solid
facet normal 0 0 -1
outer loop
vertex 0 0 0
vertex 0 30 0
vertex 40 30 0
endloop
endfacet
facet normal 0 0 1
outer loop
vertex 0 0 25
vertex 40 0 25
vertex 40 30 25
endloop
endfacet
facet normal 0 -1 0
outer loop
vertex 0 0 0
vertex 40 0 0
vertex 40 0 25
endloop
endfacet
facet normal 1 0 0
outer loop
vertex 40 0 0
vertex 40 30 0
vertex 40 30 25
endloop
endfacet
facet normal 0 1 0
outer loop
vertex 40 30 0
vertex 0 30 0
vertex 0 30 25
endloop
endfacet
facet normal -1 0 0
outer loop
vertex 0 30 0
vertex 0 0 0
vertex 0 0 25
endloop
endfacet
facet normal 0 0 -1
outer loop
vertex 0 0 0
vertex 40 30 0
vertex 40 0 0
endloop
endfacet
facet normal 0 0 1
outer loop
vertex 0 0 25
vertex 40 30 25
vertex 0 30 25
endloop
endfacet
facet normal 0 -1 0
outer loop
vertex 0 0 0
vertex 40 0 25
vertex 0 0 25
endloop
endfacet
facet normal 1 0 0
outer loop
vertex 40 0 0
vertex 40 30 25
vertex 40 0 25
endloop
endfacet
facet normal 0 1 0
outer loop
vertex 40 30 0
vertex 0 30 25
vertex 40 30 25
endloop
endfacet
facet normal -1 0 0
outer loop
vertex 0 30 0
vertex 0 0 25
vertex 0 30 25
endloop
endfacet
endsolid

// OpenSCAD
// Original MechIntel educational model. CC0-1.0. Units: mm.
// Not a standardized or load-rated component.
$fn=96;
length=40;
width=30;
height=25;
cube([length,width,height]);
